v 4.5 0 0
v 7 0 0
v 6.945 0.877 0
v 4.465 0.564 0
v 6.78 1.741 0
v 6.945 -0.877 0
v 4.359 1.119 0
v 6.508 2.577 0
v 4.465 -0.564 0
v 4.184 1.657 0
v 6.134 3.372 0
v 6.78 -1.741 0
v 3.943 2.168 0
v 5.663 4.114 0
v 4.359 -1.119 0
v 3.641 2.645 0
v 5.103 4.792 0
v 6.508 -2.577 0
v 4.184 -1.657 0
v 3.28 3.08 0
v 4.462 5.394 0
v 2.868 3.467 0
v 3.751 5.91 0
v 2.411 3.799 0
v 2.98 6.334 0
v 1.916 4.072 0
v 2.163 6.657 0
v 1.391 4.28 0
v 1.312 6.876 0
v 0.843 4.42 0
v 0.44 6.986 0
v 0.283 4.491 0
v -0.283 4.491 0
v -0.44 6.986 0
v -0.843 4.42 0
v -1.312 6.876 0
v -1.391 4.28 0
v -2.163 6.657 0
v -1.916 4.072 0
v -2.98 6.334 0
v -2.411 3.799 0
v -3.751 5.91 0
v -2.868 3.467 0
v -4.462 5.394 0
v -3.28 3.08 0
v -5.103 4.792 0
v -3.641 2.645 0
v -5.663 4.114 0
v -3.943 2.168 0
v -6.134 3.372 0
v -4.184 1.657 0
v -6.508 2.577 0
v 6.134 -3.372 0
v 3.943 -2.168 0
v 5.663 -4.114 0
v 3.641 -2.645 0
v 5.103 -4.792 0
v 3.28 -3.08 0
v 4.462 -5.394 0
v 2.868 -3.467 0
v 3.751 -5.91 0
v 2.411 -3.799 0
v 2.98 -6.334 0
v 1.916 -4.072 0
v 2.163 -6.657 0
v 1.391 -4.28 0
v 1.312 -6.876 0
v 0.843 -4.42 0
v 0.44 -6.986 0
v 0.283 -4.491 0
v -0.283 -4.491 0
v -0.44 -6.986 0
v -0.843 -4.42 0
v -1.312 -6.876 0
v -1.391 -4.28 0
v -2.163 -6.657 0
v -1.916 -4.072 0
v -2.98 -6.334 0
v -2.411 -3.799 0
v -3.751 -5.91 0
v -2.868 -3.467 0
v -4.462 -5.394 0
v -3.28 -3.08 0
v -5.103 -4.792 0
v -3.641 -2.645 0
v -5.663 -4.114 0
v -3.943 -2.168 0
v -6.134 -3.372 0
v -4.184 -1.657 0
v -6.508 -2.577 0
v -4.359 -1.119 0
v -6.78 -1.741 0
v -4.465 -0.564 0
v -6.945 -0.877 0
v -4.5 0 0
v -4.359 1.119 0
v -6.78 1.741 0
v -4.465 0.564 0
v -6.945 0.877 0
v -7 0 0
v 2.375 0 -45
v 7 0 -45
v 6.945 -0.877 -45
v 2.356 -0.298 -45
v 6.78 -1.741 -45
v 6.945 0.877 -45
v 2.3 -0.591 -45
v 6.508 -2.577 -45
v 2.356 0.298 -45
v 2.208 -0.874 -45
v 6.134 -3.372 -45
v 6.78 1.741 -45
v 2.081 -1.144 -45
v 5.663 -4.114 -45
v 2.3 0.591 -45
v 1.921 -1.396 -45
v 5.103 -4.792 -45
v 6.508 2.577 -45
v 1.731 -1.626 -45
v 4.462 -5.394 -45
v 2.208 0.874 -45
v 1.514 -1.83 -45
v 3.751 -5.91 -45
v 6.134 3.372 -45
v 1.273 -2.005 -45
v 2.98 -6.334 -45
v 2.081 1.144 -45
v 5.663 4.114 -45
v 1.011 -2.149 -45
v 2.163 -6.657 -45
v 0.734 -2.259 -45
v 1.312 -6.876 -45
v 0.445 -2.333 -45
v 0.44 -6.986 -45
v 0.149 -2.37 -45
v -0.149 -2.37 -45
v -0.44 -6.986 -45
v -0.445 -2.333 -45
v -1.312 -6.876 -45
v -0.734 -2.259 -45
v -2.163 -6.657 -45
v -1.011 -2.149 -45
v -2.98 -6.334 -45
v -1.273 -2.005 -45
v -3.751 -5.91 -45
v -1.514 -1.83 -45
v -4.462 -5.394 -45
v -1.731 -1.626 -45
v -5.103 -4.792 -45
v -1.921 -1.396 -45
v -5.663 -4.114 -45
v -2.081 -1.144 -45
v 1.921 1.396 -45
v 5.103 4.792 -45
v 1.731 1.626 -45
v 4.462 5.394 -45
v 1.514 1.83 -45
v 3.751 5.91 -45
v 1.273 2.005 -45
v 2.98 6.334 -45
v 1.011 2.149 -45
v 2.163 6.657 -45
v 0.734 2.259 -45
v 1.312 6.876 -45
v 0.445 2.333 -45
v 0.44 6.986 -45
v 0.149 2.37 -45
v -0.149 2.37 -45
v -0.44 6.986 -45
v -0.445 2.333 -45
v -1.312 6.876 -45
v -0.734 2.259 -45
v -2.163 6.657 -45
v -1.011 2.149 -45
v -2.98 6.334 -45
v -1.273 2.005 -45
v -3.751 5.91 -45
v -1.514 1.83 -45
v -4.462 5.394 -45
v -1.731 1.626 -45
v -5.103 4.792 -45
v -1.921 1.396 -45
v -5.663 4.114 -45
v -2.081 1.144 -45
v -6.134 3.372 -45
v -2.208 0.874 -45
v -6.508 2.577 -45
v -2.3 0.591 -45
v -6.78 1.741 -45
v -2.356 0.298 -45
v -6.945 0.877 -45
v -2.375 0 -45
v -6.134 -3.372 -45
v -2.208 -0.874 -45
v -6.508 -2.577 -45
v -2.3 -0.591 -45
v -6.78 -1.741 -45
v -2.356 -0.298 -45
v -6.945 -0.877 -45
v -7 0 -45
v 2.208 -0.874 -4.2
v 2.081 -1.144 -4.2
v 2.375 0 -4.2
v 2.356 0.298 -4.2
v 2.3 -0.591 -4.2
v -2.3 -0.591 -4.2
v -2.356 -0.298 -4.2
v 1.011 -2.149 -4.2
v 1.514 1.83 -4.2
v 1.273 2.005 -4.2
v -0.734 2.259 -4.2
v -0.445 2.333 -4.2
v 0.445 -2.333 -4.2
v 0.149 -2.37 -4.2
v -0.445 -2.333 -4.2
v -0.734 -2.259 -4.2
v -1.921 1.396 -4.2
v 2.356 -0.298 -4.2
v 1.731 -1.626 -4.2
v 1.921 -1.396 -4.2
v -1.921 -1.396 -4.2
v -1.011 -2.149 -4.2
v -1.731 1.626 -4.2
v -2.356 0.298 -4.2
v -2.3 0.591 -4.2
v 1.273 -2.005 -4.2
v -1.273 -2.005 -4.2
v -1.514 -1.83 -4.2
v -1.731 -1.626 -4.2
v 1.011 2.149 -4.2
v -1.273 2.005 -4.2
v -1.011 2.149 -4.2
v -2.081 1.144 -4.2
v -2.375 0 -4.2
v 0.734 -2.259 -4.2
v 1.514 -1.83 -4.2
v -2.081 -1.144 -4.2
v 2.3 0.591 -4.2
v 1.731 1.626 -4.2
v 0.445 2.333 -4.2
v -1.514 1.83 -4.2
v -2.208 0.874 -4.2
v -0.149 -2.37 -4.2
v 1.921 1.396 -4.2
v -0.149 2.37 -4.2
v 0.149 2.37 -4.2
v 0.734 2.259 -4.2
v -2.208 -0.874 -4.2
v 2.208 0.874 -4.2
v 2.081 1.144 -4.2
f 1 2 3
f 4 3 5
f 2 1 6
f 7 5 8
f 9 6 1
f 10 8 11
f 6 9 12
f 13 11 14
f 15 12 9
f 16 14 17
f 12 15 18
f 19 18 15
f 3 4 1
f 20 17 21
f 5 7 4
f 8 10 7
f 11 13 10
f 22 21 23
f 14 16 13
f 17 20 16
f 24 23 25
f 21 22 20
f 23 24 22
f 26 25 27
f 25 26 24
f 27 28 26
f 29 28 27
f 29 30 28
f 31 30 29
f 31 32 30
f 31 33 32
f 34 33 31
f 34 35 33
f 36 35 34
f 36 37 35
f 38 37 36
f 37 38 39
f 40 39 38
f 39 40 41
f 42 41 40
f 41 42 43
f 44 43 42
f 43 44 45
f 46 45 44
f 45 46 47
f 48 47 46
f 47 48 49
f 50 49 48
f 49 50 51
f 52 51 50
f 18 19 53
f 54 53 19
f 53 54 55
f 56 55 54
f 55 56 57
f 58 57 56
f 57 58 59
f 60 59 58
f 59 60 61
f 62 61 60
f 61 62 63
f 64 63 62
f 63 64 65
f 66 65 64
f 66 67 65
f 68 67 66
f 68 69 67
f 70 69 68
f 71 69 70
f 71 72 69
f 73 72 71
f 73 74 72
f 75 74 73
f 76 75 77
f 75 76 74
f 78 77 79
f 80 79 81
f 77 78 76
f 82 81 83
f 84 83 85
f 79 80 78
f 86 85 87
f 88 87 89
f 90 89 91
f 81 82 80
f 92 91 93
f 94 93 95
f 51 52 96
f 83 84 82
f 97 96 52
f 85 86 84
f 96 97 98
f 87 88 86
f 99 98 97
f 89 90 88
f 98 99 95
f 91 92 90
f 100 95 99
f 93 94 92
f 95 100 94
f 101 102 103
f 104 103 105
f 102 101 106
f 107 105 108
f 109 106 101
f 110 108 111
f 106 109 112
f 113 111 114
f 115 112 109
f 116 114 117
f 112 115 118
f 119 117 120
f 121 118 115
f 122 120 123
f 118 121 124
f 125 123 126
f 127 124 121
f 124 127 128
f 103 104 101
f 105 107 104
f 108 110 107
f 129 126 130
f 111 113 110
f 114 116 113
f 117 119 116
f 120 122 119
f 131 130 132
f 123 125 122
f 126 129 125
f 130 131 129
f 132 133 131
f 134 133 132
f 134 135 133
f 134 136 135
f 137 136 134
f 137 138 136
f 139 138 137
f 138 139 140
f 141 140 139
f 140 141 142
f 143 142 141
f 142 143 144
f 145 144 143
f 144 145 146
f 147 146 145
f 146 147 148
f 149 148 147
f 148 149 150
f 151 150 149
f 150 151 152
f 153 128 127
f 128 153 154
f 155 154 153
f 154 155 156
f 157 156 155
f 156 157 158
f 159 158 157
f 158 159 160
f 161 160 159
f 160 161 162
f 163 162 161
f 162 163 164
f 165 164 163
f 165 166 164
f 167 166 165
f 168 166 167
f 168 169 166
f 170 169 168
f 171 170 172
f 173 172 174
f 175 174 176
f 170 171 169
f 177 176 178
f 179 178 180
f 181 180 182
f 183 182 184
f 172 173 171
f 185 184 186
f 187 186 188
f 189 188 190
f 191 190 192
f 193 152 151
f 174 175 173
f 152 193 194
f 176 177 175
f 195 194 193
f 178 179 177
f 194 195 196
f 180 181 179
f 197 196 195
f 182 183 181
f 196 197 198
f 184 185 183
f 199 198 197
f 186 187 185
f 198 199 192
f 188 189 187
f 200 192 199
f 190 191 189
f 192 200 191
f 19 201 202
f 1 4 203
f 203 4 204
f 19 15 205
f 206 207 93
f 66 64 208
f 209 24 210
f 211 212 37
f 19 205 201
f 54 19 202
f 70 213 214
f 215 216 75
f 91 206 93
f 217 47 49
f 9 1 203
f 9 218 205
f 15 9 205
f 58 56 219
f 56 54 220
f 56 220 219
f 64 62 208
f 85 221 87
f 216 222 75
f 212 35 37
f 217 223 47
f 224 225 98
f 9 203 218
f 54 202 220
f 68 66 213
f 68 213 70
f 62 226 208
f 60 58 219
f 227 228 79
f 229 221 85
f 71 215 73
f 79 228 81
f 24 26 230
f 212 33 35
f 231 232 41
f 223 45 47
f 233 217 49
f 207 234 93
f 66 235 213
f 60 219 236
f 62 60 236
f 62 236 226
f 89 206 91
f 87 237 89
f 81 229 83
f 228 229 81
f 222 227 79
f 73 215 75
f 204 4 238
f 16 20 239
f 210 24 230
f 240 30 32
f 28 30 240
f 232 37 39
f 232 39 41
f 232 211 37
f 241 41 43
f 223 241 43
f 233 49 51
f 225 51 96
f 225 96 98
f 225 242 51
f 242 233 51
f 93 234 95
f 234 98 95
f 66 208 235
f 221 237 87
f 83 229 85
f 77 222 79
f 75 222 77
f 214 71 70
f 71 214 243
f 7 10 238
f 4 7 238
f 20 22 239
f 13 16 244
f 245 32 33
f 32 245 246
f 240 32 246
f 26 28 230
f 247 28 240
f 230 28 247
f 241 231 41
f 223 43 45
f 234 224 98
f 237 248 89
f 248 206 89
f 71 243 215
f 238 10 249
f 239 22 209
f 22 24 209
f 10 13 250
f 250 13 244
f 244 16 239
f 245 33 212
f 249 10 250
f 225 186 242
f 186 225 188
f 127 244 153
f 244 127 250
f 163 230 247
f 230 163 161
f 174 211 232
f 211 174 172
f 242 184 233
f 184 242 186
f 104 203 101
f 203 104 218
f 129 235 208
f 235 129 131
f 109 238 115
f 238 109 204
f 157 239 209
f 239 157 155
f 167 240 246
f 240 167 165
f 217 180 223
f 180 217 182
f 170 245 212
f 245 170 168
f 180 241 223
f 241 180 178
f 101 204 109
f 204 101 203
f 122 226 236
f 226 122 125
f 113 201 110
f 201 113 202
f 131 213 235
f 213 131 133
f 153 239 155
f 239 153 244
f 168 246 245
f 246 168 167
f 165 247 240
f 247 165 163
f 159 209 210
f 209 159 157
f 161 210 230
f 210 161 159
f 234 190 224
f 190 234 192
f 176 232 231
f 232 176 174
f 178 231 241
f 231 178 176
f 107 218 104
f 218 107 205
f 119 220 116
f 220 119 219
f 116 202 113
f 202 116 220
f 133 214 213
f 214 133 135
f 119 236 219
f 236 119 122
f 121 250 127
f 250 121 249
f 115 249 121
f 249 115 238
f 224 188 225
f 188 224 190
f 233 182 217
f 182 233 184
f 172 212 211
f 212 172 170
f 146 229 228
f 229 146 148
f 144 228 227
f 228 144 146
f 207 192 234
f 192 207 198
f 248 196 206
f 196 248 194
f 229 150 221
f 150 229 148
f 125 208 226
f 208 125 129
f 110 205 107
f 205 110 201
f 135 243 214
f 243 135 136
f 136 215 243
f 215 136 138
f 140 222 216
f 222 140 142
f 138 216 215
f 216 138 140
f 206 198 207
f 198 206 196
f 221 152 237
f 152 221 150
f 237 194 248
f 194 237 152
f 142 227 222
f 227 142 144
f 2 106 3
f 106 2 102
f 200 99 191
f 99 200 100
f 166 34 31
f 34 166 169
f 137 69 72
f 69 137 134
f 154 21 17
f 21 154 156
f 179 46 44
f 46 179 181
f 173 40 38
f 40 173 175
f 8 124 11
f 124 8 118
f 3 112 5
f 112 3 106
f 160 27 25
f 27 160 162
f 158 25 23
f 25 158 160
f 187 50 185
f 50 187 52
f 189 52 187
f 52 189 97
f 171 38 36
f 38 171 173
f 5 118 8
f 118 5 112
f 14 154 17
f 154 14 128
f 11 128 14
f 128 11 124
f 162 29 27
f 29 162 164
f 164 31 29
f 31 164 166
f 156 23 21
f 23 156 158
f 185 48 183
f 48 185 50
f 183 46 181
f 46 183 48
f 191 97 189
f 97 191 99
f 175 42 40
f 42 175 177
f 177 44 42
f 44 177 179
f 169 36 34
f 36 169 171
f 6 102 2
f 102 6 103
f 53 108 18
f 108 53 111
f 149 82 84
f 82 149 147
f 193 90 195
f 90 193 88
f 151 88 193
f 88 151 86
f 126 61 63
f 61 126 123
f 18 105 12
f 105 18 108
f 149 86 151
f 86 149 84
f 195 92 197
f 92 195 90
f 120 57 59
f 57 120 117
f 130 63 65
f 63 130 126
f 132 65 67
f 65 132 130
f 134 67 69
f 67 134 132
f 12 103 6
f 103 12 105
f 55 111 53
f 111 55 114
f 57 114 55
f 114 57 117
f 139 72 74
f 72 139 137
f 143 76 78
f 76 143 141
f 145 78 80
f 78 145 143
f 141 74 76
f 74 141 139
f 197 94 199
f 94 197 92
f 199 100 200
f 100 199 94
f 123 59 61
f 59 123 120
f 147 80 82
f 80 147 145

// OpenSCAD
$fn = 50;


difference() {
	union() {
		translate(v = [0, 0, -45.0000000000]) {
			cylinder(h = 45, r = 7.0000000000);
		}
		cylinder(h = 0, r = 16.0000000000);
	}
	union() {
		translate(v = [0, 0, 0]) {
			rotate(a = [0, 0, 0]) {
				difference() {
					union() {
						#translate(v = [0, 0, -45.0000000000]) {
							cylinder(h = 45, r = 2.2500000000);
						}
						#translate(v = [0, 0, -4.2000000000]) {
							cylinder(h = 4.2000000000, r1 = 2.3750000000, r2 = 4.5000000000);
						}
						#translate(v = [0, 0, -45.0000000000]) {
							cylinder(h = 45, r = 2.3750000000);
						}
						#translate(v = [0, 0, -45.0000000000]) {
							cylinder(h = 45, r = 2.2500000000);
						}
					}
					union();
				}
			}
		}
	}
}
